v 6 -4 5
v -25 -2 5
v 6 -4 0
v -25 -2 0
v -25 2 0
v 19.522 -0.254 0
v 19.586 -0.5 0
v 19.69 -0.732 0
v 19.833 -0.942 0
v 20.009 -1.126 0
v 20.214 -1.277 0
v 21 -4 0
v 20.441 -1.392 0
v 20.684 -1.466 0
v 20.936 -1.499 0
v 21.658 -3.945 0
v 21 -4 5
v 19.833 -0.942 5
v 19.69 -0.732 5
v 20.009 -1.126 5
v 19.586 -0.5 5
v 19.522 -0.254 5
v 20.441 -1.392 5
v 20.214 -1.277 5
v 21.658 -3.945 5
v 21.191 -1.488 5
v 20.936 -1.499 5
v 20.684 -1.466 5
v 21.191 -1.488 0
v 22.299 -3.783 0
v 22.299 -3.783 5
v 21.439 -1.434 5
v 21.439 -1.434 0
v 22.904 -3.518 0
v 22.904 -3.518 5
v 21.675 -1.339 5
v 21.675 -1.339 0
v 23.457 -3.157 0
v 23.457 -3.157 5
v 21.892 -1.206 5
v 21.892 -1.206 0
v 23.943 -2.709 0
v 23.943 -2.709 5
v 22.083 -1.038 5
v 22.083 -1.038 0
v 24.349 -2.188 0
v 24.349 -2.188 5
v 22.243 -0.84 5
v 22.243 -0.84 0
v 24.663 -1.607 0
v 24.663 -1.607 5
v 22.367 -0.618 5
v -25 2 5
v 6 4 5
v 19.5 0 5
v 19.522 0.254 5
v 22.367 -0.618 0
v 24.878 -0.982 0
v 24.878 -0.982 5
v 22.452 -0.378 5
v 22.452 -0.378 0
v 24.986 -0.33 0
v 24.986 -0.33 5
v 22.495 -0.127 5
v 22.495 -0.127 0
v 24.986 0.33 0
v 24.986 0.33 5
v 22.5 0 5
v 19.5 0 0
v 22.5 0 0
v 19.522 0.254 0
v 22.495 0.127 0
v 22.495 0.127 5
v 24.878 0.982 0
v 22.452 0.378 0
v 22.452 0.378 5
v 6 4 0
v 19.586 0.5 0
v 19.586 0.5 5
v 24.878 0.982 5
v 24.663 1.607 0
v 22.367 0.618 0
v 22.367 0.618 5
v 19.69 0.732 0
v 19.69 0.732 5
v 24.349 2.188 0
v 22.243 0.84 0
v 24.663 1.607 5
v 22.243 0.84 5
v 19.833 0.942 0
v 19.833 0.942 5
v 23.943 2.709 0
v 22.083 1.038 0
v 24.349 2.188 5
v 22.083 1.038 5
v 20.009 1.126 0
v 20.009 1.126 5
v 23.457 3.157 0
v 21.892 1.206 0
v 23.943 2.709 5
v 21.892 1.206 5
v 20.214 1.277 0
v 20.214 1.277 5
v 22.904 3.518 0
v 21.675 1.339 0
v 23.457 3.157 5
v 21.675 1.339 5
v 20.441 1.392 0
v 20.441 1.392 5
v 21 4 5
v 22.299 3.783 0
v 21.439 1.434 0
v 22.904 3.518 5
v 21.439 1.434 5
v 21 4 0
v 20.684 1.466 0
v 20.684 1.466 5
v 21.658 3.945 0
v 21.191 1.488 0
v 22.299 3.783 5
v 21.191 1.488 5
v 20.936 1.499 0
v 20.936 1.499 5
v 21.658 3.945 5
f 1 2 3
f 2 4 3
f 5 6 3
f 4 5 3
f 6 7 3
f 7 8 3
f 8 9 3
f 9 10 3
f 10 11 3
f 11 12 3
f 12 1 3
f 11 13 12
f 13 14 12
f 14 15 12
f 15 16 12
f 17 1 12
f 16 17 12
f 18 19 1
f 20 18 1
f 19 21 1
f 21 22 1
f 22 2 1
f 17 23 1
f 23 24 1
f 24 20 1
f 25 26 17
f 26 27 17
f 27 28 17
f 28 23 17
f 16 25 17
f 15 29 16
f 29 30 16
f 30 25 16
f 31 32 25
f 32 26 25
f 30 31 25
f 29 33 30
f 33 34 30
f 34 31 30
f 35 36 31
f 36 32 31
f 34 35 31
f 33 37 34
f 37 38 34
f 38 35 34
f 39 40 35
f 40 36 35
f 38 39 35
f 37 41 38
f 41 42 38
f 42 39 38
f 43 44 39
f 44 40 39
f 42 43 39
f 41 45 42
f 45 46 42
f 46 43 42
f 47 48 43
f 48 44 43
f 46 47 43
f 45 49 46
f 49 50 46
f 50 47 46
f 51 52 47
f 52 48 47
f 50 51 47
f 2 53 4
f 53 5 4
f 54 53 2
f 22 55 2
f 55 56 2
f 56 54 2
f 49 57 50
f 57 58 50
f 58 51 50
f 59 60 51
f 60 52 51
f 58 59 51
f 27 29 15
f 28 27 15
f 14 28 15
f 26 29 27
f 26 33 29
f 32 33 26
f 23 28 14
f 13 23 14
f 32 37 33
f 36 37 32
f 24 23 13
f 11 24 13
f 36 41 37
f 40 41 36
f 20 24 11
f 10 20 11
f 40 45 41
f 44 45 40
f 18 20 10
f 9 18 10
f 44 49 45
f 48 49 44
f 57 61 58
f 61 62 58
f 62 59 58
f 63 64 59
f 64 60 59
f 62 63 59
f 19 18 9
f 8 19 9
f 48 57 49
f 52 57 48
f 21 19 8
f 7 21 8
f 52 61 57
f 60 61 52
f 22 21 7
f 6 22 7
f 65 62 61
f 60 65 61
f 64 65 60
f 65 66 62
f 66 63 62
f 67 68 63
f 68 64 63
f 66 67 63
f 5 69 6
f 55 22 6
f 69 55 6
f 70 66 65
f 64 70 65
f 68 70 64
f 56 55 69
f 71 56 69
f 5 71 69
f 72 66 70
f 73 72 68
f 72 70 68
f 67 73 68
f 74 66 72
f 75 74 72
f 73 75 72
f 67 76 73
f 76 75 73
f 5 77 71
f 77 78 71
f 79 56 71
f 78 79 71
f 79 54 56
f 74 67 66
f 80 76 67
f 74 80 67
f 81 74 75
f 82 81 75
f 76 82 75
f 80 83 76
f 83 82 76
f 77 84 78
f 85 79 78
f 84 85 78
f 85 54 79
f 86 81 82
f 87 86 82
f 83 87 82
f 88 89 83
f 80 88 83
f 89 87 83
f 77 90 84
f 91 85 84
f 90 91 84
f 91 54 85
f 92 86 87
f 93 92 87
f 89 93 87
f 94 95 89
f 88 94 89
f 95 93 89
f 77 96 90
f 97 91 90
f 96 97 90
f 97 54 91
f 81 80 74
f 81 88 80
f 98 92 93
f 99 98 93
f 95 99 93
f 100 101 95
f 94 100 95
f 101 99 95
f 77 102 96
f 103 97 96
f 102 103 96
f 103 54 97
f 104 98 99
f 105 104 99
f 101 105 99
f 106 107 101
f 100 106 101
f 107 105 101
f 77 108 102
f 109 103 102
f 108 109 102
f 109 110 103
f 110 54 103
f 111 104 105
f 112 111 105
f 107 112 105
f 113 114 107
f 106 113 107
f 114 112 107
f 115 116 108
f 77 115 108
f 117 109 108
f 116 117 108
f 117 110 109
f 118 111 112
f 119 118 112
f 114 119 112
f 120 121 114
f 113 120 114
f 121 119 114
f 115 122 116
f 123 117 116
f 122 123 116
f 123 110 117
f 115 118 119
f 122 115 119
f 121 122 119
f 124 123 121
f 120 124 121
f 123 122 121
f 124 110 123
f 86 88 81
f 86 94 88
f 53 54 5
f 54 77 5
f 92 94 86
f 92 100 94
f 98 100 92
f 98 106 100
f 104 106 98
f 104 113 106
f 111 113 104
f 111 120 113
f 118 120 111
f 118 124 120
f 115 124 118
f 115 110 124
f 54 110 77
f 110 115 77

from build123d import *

# Parameters (mm, degrees)
ESQUISSE1_R        = 1.5
BOSS_EXTRU_1_DEPTH = 5


with BuildPart() as part:
    # Esquisse1 → Boss.-Extru.1 (new body)
    with BuildSketch(Plane.XY):
        with BuildLine():
            Line((6, 4), (21, 4))
            ThreePointArc((21, 4), (25, 0), (21, -4))
            Line((21, -4), (6, -4))
            Line((6, -4), (-25, -2))
            Line((-25, -2), (-25, 2))
            Line((-25, 2), (6, 4))
        make_face()
        with Locations((21, 0)):
            Circle(ESQUISSE1_R, mode=Mode.SUBTRACT)
    extrude(amount=BOSS_EXTRU_1_DEPTH)


solid = part.part
